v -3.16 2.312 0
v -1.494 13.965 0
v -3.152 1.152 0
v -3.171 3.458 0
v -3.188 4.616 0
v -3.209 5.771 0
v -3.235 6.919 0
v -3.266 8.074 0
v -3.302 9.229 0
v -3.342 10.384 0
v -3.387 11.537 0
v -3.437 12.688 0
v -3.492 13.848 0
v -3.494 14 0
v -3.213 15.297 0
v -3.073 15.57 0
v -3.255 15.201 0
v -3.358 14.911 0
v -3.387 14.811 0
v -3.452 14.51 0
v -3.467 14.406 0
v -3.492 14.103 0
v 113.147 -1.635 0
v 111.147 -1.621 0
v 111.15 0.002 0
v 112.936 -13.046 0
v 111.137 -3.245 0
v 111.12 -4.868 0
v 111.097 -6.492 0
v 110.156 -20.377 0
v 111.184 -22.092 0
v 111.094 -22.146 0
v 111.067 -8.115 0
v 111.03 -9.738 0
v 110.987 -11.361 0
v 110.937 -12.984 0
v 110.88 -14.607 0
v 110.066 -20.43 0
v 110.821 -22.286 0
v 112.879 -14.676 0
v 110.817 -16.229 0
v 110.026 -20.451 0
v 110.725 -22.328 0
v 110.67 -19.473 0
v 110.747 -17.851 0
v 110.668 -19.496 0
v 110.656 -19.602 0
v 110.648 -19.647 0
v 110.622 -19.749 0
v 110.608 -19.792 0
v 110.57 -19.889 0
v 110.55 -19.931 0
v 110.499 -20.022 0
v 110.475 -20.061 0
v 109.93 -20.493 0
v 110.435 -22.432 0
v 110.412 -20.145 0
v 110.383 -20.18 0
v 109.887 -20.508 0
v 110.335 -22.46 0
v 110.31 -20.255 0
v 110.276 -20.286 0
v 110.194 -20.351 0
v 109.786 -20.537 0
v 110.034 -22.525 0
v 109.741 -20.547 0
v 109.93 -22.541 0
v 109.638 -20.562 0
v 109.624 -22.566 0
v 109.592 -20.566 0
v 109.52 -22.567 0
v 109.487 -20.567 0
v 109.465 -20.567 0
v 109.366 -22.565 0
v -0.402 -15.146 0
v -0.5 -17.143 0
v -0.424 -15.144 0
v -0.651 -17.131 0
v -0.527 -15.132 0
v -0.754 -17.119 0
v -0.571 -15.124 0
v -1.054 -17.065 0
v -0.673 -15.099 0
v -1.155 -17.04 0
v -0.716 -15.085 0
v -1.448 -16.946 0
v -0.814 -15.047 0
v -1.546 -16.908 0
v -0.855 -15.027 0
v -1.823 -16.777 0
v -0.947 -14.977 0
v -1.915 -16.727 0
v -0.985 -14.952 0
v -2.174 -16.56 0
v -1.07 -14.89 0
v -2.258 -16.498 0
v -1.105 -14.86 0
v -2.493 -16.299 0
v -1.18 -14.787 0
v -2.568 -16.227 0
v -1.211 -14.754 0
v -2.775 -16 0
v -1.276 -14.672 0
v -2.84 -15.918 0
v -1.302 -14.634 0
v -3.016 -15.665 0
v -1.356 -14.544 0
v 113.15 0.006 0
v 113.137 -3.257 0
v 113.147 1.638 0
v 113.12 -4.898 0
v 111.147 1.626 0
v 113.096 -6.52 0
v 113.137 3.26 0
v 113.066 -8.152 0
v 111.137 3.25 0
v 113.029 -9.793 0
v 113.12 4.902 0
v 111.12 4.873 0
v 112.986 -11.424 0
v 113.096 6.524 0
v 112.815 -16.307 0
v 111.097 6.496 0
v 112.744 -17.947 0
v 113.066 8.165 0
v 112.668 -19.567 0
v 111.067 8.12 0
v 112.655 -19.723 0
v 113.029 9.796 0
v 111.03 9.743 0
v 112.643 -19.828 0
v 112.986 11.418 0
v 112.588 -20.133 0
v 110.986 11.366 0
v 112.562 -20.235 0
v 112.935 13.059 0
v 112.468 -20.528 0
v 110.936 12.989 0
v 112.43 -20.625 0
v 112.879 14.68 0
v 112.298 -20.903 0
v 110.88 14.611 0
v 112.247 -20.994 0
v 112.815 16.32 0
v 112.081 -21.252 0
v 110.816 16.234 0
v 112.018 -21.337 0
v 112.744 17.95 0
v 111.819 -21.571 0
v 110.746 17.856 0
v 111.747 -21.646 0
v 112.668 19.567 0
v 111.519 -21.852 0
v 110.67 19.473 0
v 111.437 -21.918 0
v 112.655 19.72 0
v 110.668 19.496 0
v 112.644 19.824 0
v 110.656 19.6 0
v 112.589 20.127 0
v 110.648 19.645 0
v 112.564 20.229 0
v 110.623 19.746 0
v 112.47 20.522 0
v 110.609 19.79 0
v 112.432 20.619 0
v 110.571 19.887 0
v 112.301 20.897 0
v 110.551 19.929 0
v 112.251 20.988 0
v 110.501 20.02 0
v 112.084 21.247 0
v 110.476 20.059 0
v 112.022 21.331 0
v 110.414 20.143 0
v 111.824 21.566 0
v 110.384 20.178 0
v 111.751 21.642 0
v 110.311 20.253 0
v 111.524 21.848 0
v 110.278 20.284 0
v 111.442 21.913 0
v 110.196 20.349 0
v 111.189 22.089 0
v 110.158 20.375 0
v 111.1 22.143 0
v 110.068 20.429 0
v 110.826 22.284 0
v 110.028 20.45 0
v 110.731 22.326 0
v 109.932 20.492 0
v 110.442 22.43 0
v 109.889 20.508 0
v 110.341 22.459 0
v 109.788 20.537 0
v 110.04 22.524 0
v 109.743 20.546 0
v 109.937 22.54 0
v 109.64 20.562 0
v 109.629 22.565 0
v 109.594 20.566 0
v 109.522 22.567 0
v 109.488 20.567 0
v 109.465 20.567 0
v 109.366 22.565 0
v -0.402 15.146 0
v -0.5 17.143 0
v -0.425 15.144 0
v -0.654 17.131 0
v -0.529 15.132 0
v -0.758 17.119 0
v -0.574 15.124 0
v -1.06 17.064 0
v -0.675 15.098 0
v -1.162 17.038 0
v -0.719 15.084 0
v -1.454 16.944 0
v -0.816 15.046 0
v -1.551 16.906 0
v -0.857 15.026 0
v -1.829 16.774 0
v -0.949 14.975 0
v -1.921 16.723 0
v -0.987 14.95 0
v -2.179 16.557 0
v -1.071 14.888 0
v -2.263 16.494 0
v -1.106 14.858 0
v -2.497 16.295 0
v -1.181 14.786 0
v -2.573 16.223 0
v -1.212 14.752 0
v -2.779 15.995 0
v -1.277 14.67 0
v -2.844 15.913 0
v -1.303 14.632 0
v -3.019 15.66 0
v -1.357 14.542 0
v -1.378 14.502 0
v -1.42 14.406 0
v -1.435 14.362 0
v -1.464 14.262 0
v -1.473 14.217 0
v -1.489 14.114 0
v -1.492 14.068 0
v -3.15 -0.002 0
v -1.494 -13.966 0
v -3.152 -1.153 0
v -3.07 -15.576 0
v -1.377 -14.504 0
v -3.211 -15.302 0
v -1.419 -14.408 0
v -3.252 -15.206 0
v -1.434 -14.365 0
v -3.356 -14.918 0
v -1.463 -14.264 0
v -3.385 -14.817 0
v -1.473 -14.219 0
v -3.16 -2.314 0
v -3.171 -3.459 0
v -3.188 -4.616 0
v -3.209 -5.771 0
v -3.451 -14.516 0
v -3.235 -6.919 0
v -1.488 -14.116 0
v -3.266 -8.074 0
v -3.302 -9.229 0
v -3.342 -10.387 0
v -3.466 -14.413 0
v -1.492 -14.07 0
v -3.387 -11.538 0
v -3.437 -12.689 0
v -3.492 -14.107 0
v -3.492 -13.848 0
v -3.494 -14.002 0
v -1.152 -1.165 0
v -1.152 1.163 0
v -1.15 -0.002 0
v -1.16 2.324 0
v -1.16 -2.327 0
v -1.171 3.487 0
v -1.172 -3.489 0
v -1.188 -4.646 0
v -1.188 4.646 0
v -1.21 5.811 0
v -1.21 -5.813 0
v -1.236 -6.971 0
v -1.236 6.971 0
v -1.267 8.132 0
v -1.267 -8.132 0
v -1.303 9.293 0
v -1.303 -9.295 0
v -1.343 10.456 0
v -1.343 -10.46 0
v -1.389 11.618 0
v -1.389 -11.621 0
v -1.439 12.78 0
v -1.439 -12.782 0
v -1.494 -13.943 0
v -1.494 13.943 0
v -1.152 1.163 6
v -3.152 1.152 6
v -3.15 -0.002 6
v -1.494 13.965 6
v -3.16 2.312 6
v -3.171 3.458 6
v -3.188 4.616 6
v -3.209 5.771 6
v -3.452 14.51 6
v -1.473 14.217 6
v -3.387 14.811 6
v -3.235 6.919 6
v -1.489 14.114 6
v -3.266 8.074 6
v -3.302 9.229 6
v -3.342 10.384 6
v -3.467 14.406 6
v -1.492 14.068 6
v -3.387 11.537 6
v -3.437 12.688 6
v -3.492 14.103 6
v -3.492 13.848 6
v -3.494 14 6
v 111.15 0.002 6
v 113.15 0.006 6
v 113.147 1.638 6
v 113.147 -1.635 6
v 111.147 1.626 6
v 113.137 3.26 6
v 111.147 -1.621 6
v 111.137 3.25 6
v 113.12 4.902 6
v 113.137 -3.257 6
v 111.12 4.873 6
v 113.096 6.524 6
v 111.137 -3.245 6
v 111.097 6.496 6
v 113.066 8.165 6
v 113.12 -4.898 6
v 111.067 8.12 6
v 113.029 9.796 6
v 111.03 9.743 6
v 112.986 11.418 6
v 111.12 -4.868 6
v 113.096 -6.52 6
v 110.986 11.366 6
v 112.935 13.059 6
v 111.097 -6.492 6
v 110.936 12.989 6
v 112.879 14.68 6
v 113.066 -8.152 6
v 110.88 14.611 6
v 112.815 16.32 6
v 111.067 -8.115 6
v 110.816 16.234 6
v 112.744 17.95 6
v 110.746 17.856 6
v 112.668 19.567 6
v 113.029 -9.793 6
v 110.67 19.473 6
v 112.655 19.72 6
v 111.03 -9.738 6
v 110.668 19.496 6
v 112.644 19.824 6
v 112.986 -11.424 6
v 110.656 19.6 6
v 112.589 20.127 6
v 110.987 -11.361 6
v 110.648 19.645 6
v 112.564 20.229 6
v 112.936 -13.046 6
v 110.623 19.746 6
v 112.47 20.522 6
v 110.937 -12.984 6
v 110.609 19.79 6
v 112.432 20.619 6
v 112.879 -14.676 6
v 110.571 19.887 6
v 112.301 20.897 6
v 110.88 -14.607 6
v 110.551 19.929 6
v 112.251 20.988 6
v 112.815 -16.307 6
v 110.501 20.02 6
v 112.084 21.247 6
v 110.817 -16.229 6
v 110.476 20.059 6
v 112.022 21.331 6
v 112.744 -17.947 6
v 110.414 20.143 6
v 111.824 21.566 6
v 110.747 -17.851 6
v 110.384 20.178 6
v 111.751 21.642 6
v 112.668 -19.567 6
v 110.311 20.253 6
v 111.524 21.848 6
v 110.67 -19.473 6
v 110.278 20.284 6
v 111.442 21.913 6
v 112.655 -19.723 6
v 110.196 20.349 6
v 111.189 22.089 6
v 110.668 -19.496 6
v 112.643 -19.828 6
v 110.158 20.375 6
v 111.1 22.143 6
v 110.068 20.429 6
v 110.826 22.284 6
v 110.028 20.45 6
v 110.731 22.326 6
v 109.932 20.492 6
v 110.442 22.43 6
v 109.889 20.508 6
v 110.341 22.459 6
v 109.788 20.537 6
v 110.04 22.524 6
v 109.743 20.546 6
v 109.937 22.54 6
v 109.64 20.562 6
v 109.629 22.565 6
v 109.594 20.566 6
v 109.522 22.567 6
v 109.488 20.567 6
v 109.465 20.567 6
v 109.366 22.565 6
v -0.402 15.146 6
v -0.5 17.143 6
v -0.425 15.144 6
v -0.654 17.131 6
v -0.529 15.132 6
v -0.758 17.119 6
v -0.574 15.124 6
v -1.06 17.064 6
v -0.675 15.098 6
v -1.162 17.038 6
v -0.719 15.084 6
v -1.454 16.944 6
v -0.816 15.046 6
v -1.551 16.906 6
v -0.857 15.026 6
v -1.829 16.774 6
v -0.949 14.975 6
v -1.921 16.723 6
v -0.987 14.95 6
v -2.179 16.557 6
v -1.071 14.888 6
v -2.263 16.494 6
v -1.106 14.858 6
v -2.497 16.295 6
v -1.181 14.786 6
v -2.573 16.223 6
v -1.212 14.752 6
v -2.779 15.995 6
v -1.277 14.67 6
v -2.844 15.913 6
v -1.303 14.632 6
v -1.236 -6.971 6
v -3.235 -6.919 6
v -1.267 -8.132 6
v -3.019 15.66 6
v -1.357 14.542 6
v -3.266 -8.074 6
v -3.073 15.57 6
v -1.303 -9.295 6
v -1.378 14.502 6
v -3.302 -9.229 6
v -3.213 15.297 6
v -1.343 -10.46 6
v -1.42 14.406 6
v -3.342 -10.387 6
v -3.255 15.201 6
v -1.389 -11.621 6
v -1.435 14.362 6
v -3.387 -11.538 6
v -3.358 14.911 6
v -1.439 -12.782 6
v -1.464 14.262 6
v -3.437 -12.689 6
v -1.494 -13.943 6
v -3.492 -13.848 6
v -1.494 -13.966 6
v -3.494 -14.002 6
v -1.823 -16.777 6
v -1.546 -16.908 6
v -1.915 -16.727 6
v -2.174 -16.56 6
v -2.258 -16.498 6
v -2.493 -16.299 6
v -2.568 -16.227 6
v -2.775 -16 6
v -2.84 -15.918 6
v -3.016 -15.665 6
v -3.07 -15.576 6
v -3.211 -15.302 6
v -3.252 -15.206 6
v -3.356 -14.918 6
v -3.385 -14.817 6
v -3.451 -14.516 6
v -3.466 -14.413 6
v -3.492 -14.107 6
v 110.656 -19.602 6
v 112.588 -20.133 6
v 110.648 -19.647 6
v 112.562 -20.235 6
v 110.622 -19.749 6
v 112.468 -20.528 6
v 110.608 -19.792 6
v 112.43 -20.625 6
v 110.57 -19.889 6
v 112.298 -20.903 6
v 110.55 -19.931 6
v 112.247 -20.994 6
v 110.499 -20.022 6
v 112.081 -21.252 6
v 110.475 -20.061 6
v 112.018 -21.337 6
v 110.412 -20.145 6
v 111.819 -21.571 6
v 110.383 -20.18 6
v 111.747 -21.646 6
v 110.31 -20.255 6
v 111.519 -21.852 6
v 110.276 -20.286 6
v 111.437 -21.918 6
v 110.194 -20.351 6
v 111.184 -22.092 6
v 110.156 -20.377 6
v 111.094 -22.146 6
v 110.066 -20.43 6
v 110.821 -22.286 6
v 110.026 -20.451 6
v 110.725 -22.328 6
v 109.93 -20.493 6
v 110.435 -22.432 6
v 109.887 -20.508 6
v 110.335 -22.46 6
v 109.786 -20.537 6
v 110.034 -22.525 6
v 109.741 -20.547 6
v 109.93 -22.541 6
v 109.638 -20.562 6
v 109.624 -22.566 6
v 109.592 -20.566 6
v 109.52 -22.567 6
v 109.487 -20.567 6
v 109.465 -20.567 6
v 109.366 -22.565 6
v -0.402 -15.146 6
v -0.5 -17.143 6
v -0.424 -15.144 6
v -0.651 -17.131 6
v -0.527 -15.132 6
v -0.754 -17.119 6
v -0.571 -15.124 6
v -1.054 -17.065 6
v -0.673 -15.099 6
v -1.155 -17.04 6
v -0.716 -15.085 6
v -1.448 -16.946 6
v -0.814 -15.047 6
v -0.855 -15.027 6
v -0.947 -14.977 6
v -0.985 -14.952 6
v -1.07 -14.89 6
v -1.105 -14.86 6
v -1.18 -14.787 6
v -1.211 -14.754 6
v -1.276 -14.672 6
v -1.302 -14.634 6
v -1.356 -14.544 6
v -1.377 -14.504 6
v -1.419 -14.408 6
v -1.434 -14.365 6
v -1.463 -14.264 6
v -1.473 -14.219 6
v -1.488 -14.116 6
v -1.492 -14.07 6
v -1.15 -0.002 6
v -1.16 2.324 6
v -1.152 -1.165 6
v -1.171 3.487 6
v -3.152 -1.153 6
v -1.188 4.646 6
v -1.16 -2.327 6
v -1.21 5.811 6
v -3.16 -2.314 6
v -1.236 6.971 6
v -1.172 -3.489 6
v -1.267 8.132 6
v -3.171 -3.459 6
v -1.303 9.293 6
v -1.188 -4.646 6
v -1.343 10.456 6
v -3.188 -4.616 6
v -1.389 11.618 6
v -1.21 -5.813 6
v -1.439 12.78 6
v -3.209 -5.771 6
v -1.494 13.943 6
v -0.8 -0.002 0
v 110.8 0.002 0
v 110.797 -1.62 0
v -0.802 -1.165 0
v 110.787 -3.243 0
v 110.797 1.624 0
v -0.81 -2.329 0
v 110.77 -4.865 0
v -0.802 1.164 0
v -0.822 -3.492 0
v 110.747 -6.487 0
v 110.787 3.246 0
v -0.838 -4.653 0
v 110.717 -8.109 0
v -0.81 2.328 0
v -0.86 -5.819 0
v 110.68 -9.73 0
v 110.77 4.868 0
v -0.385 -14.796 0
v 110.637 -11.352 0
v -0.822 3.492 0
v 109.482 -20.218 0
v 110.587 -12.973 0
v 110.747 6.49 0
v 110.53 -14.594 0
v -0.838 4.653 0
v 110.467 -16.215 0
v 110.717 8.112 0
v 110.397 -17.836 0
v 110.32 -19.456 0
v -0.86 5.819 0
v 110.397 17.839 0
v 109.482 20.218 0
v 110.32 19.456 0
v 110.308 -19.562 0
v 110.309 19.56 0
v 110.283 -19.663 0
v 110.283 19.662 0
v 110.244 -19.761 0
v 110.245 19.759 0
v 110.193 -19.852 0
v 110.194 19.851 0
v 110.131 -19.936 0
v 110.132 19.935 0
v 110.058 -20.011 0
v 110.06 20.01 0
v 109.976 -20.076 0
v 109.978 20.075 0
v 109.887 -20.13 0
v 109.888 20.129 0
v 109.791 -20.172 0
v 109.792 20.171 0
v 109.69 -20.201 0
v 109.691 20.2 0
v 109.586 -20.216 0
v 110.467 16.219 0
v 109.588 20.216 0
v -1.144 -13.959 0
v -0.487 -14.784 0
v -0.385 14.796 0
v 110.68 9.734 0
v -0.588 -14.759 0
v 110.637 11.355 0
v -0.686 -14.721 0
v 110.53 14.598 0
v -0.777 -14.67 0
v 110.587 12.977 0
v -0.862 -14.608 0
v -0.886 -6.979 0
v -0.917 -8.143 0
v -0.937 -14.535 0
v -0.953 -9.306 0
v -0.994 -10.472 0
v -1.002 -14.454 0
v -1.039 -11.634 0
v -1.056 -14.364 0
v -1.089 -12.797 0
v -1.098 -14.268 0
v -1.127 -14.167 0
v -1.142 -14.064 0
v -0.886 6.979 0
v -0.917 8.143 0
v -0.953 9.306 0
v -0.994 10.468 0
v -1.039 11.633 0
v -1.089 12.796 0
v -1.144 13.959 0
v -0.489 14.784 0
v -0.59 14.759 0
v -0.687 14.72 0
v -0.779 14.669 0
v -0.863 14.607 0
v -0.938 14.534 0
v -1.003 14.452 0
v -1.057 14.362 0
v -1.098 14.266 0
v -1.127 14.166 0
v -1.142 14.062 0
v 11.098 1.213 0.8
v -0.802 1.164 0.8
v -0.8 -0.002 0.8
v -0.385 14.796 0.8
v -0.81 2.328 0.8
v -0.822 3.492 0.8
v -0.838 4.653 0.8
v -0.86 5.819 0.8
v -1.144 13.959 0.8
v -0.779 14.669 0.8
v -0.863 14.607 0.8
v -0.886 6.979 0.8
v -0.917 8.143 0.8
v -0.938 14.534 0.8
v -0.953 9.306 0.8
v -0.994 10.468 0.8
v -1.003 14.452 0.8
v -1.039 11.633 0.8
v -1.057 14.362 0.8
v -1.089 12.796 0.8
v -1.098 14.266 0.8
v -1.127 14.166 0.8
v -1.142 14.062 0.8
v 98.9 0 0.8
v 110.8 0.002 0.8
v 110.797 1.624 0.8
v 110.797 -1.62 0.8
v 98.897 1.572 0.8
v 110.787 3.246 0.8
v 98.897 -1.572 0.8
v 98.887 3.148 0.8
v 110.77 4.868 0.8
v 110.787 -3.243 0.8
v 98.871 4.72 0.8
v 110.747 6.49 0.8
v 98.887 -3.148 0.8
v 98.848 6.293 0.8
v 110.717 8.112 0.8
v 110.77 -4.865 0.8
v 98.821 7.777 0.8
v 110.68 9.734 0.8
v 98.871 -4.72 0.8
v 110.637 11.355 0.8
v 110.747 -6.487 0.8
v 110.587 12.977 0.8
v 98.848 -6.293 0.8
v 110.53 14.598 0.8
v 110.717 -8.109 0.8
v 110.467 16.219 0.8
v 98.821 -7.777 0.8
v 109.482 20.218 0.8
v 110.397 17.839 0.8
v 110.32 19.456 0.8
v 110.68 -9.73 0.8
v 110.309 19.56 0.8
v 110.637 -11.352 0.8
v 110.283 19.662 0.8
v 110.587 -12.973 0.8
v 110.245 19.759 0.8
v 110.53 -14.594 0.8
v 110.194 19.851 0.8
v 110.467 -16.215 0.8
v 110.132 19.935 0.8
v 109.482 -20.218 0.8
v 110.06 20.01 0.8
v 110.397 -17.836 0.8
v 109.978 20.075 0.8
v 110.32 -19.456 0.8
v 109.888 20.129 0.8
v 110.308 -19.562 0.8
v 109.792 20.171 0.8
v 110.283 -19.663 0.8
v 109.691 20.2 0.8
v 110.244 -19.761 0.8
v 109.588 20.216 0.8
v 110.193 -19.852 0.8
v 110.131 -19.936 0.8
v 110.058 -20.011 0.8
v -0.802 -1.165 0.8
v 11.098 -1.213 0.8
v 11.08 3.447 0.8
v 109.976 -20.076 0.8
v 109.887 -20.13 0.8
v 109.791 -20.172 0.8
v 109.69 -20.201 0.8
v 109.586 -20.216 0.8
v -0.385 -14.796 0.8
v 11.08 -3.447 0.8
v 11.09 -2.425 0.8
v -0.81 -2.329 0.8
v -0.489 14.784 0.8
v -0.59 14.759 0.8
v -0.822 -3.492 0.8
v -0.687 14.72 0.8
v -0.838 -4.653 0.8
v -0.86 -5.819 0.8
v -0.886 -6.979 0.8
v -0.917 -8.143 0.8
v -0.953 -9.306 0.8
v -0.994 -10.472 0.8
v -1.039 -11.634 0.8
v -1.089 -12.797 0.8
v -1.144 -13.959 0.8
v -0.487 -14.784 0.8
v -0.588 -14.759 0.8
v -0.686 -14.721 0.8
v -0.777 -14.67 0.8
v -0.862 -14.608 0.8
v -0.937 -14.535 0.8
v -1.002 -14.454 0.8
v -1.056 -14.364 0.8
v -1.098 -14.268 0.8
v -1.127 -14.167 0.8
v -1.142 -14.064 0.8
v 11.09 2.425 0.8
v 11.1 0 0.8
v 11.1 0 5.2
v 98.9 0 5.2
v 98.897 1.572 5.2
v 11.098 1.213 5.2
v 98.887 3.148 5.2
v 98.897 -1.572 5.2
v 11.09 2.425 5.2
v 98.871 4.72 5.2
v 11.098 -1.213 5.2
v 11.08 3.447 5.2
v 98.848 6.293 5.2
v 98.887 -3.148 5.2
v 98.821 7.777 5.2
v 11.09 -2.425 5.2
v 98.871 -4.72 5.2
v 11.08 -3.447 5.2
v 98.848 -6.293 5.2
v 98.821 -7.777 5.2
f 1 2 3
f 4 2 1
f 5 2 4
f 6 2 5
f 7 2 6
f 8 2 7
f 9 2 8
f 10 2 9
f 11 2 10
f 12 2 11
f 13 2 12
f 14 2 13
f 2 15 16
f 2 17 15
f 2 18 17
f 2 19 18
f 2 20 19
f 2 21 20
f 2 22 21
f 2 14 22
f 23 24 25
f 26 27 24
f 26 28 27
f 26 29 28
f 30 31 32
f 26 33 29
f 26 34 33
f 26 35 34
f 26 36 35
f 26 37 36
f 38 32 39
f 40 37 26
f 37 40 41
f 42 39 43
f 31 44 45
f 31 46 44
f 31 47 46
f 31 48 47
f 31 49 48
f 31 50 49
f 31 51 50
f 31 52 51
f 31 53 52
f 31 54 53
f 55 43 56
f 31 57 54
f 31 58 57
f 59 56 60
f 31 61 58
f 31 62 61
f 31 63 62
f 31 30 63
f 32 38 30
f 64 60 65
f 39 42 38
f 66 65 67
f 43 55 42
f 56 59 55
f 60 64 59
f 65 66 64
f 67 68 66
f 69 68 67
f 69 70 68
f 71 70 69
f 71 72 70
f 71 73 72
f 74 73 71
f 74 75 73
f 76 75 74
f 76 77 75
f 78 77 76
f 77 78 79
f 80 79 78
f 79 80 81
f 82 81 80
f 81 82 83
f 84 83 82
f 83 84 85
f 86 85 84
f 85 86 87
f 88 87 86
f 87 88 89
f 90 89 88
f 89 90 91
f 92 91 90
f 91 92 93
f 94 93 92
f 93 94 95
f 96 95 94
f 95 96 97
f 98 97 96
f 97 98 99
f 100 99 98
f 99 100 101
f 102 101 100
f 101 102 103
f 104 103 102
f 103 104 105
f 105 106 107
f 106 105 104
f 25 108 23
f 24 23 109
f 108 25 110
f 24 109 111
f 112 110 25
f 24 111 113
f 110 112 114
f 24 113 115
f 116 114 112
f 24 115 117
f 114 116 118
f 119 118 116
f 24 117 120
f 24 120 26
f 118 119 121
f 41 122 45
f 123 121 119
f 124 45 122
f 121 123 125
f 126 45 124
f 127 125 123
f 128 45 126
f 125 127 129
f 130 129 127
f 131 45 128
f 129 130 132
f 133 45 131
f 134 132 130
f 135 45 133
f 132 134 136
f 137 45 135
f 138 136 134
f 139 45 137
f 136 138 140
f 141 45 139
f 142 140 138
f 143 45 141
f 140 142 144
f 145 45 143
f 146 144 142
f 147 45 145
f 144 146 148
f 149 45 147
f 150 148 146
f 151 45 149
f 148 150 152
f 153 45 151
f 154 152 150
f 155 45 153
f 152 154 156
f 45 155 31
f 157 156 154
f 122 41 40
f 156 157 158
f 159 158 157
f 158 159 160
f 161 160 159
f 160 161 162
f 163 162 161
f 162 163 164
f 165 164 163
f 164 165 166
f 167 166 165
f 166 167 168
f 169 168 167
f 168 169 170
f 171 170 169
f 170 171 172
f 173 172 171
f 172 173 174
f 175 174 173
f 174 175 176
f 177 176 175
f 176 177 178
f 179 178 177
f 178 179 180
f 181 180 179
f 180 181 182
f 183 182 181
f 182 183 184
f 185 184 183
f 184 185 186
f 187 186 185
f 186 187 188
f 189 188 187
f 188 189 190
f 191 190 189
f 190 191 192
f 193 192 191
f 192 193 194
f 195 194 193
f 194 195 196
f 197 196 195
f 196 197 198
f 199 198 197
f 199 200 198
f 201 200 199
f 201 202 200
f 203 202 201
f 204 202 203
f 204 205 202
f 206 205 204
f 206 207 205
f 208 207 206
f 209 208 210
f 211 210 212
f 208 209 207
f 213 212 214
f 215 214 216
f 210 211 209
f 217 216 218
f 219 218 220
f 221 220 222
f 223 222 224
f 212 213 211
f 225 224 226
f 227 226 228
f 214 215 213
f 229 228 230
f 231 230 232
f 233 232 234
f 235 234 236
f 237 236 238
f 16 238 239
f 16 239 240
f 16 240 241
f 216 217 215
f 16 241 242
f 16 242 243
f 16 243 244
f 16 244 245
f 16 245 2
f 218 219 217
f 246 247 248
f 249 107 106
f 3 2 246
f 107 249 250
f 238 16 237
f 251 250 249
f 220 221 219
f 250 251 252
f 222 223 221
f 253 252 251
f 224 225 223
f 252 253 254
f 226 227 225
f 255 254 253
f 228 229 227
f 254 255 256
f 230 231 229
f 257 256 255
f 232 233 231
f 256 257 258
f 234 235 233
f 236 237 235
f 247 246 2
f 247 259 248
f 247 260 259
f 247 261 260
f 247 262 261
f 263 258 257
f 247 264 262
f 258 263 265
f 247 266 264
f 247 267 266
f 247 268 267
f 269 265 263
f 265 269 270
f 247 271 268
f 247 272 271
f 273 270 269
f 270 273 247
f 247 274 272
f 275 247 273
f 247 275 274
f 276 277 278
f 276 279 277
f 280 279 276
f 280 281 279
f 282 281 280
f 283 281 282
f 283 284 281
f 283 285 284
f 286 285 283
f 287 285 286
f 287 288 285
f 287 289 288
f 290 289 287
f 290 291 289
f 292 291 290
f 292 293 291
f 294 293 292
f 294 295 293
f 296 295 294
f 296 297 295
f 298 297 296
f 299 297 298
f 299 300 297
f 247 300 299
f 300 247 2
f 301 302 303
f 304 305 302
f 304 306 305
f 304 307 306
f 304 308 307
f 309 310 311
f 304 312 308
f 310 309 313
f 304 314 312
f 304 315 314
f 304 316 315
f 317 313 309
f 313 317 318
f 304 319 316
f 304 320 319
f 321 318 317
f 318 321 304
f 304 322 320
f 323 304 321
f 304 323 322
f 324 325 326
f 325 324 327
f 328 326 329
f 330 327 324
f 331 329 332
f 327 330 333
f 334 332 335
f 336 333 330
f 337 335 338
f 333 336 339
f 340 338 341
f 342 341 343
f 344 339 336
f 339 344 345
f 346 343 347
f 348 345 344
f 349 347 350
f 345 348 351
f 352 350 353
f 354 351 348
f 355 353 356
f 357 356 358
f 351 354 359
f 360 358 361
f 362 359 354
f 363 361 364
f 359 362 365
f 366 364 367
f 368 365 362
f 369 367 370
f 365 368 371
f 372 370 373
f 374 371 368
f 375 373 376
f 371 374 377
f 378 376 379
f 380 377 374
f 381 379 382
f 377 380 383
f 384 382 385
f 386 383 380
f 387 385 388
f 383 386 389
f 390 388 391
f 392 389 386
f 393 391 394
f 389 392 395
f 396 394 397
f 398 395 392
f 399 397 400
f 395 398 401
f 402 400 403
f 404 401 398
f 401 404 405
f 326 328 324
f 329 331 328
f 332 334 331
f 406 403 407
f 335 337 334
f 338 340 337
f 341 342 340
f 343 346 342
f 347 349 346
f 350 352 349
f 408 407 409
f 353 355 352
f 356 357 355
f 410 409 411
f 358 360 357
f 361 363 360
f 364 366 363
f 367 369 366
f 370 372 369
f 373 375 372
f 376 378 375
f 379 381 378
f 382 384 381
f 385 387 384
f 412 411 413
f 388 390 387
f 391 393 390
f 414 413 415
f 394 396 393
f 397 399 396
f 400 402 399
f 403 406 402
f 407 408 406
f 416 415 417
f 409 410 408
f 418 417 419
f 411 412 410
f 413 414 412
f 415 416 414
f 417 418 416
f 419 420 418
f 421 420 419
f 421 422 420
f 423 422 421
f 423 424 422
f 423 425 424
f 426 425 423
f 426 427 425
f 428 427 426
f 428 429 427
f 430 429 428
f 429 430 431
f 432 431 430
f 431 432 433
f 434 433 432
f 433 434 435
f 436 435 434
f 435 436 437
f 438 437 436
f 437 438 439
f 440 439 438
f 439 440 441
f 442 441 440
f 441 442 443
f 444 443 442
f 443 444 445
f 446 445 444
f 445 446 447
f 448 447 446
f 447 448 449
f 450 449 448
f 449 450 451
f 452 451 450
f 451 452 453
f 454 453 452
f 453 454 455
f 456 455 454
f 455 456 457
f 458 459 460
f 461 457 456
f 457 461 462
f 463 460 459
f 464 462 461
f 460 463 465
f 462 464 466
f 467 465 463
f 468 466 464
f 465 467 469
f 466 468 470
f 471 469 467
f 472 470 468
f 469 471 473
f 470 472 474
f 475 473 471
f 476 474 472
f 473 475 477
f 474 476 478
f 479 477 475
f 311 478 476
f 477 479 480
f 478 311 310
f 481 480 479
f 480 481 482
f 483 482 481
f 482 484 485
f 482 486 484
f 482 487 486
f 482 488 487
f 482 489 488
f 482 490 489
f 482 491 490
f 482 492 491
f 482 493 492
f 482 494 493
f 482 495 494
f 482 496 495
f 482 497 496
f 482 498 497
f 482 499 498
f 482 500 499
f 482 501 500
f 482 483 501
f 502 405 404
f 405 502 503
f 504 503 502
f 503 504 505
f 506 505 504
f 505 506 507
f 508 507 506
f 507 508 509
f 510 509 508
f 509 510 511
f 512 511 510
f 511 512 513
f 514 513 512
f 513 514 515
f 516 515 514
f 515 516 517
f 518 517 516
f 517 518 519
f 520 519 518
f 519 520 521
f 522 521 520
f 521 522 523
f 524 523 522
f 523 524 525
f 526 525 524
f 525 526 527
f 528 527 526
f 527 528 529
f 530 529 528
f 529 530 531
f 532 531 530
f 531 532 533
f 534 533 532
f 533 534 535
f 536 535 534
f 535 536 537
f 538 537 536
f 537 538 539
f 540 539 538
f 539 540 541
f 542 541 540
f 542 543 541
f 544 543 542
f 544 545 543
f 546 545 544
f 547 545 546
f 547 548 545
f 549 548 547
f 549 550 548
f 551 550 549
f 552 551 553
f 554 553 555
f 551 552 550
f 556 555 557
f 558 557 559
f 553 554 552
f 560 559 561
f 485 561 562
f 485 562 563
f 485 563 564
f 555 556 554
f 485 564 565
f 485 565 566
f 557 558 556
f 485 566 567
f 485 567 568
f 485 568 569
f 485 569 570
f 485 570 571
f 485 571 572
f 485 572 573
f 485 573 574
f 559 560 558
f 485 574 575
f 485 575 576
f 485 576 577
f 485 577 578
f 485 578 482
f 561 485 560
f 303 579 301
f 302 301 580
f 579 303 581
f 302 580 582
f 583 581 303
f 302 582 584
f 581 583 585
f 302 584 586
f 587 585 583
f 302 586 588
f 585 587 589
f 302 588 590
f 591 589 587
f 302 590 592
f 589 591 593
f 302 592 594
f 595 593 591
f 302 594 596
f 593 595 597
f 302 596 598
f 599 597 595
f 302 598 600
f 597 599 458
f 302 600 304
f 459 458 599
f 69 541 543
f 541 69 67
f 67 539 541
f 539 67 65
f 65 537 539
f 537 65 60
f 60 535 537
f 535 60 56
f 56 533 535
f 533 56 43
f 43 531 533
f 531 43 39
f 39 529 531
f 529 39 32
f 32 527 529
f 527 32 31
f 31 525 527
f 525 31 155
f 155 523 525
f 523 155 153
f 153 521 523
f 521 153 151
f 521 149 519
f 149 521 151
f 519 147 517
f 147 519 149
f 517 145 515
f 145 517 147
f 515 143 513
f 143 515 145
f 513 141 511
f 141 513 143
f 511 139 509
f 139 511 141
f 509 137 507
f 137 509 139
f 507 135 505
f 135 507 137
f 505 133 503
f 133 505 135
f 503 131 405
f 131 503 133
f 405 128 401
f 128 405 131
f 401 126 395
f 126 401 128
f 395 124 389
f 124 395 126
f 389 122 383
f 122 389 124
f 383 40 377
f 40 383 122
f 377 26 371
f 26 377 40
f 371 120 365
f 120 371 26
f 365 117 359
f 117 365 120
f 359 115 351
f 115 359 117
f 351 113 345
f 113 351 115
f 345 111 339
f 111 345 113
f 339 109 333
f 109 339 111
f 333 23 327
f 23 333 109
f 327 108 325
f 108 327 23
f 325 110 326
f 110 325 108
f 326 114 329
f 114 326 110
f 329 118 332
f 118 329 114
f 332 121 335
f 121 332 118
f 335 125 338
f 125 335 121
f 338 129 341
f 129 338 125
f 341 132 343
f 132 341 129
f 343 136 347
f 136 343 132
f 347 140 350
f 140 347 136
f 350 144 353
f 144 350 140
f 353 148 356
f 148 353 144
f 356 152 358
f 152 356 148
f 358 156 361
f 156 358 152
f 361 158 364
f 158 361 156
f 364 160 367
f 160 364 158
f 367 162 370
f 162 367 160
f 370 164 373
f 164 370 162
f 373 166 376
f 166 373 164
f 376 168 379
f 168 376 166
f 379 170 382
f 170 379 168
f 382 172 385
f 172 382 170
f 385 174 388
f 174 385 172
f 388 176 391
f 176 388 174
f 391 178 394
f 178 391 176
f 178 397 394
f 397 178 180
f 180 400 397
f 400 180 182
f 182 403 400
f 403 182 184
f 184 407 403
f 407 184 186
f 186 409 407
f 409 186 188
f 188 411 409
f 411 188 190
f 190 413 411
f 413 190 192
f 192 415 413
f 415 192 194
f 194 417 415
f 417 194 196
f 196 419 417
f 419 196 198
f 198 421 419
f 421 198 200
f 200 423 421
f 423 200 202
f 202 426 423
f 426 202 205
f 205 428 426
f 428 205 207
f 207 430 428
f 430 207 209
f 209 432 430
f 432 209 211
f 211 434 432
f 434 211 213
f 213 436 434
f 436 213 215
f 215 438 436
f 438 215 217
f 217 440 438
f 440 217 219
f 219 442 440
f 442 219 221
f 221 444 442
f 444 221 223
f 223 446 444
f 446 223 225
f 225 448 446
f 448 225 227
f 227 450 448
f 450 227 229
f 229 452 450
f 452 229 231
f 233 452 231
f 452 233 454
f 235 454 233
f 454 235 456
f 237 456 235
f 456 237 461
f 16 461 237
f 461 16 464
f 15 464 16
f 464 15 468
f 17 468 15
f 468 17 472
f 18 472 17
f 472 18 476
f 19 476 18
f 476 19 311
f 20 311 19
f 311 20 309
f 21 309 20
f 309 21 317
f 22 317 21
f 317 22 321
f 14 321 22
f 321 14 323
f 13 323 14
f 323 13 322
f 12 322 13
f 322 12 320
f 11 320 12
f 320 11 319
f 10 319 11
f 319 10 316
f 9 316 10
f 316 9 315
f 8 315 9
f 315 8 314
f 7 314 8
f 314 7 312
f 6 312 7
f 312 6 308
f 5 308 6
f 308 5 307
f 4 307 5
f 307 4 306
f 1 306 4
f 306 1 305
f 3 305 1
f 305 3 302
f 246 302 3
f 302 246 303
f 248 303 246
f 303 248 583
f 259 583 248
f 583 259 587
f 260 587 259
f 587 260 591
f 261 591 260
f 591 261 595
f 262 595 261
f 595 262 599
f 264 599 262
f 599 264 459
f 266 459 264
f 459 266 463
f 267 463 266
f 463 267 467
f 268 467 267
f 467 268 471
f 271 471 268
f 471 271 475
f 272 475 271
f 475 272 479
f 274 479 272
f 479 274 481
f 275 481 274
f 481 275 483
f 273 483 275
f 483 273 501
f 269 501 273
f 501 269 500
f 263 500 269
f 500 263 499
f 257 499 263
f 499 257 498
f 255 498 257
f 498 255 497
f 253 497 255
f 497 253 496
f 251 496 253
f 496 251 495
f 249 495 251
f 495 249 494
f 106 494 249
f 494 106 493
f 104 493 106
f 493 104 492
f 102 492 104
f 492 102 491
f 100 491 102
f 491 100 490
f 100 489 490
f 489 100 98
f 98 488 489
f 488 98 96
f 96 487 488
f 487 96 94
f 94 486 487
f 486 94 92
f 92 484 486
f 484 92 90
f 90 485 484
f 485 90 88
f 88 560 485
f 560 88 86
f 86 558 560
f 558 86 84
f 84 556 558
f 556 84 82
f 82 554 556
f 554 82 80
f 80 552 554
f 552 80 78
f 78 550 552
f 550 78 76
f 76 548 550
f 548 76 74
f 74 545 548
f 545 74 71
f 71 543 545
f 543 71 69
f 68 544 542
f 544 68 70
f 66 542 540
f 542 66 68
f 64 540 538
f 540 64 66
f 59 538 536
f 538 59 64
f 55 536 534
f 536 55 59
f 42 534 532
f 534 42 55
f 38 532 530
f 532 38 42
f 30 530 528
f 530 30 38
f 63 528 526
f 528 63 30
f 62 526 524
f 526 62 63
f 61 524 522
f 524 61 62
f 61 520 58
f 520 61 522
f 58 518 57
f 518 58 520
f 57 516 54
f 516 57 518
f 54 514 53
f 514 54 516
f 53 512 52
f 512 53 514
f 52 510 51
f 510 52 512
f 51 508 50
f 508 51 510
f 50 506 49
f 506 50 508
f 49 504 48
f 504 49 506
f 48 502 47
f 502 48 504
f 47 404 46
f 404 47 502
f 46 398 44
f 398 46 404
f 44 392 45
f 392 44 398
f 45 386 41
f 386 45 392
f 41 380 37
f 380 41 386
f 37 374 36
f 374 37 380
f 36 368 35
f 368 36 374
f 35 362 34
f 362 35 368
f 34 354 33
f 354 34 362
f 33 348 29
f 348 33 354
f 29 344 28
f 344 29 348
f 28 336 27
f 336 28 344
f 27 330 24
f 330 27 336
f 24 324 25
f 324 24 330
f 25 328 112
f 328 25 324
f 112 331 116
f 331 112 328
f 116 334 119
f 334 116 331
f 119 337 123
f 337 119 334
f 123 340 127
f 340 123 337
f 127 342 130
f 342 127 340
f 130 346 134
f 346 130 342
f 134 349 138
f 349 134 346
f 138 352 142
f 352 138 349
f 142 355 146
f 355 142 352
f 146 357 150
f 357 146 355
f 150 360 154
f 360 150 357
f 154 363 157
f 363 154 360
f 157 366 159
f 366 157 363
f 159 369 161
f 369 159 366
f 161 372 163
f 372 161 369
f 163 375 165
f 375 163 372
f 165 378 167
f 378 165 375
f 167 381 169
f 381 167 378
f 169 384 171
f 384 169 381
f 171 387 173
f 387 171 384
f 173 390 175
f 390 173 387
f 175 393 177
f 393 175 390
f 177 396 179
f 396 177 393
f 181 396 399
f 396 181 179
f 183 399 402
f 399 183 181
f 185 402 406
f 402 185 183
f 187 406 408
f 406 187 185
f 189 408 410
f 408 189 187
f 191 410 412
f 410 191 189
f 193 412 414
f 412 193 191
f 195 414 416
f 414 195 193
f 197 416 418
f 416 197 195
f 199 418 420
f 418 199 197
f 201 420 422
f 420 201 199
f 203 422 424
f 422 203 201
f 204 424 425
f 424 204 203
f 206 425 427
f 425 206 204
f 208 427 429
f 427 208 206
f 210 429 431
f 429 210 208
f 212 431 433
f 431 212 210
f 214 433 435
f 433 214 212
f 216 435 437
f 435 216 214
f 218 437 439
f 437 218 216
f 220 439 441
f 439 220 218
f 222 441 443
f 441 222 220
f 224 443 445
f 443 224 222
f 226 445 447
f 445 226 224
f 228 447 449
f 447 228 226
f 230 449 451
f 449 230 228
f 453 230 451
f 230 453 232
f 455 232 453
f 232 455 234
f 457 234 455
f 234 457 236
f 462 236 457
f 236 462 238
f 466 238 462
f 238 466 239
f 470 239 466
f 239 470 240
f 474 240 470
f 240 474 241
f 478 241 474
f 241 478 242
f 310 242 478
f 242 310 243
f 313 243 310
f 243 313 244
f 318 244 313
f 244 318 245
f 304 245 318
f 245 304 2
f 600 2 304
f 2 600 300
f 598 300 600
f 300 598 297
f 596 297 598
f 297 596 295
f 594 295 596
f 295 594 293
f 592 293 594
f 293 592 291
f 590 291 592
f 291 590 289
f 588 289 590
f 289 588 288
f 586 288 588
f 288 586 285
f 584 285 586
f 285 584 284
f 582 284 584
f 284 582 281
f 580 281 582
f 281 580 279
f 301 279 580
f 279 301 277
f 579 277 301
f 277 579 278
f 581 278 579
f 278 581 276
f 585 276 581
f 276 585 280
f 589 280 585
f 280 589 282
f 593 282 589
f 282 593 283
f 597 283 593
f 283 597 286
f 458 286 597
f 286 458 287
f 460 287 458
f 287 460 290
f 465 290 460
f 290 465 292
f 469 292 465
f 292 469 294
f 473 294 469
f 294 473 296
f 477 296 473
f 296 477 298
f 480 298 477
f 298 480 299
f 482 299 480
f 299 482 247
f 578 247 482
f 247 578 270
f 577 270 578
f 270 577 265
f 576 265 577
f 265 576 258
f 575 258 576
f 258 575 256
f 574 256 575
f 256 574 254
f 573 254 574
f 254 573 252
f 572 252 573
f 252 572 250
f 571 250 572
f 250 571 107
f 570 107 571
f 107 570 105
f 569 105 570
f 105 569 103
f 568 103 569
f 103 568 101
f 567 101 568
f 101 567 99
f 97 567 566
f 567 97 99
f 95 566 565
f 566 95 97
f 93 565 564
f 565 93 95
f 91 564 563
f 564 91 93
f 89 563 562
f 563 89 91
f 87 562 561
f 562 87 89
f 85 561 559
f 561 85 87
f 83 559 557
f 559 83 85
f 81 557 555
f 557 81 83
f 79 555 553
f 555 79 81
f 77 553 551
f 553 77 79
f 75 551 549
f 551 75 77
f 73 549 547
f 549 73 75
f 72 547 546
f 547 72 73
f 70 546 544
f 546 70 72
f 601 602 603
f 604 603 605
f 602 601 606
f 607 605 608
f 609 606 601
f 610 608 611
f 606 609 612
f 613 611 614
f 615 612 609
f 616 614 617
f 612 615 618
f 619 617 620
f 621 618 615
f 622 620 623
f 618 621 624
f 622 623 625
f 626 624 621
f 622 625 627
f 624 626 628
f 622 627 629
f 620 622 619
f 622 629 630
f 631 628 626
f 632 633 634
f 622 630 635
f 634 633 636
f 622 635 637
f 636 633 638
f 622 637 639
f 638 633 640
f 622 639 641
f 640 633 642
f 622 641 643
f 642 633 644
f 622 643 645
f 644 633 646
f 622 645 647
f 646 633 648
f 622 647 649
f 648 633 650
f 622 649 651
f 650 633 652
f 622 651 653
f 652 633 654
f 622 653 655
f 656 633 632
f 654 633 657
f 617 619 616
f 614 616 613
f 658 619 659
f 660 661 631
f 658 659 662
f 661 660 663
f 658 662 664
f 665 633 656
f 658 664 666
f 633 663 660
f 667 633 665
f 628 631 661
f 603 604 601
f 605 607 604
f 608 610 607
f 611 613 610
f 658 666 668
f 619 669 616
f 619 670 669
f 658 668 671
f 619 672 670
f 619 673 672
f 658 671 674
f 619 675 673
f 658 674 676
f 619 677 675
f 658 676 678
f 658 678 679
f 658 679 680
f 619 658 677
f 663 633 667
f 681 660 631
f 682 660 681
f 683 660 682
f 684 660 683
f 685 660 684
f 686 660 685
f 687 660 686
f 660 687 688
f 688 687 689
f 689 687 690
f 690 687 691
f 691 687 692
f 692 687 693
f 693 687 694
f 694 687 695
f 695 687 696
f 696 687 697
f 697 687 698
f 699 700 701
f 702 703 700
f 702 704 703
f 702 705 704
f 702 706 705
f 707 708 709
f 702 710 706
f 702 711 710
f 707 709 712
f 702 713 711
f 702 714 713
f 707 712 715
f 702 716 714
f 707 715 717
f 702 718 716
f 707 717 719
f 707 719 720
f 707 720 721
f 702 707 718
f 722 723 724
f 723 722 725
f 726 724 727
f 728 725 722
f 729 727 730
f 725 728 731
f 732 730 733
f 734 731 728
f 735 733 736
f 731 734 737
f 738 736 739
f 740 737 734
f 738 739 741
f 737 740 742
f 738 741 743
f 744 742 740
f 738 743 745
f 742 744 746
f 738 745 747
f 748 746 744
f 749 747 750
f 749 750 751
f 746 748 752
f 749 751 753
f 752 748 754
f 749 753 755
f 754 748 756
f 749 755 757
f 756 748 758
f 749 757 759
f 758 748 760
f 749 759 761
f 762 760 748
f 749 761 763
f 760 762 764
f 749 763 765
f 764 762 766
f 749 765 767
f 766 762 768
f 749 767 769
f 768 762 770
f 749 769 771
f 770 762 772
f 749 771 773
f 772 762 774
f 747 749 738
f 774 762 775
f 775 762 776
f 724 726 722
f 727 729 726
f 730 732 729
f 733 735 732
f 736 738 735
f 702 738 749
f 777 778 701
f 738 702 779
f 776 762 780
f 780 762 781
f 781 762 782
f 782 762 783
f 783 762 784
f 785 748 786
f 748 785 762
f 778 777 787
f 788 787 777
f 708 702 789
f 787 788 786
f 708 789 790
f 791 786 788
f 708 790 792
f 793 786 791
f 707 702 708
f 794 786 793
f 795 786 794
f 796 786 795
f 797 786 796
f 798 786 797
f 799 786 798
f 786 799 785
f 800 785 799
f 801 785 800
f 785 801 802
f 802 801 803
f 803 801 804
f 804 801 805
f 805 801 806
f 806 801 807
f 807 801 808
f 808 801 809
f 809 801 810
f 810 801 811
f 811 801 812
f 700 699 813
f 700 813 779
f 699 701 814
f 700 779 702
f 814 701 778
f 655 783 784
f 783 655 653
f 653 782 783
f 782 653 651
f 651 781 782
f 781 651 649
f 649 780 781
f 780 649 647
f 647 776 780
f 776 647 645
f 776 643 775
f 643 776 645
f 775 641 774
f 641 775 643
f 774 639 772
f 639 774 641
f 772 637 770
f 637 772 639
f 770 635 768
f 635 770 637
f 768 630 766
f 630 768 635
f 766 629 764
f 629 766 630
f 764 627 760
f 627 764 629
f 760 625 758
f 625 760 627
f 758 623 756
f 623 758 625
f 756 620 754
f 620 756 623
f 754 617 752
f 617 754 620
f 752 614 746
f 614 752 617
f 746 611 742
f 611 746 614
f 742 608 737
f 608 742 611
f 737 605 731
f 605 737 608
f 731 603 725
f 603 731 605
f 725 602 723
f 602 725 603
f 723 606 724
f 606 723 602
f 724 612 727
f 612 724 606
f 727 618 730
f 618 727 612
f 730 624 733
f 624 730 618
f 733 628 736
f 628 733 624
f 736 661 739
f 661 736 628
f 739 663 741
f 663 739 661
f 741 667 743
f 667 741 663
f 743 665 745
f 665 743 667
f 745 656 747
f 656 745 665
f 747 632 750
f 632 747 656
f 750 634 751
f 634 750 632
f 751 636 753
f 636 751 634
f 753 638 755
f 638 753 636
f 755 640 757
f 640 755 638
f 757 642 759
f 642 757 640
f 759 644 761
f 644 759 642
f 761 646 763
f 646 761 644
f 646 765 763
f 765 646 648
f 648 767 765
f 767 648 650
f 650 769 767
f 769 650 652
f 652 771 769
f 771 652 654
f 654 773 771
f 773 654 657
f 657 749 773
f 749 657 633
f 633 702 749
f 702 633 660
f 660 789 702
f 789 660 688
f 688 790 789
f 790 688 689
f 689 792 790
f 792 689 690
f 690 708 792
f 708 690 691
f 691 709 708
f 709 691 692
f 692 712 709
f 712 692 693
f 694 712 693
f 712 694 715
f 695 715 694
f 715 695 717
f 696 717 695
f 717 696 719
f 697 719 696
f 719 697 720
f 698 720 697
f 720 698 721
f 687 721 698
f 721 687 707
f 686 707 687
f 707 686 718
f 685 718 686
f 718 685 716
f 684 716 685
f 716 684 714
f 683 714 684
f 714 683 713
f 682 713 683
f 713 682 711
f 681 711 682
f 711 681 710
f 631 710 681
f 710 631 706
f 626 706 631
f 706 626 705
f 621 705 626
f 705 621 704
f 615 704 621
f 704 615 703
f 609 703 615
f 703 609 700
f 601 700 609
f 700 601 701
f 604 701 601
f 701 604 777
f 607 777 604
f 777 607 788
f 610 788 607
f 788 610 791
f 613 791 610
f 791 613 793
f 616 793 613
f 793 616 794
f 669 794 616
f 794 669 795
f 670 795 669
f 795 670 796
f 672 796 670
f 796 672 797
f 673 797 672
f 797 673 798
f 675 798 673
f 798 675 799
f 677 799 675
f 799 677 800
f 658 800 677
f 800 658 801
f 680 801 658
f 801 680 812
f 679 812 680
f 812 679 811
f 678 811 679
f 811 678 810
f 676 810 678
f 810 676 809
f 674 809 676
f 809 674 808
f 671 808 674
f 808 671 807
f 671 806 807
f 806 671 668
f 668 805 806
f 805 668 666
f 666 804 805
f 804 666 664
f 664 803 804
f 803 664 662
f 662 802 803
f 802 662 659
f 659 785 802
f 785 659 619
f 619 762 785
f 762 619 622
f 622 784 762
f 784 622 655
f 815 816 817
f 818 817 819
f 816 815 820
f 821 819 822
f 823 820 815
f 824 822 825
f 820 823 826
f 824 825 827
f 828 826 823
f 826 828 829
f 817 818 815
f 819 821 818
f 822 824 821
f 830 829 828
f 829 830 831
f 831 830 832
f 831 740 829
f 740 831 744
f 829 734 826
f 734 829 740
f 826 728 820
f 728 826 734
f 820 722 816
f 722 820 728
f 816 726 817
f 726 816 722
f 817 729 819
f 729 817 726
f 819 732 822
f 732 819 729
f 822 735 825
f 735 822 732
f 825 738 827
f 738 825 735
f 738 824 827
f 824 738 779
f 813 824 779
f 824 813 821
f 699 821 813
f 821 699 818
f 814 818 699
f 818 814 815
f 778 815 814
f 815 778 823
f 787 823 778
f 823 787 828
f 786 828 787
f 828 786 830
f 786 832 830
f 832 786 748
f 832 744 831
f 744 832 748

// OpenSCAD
// Gen-EB — fit coupon (bay part): O20/O5 THROUGH pockets at carrier thickness (test on a steel offcut), 608 seat,
// D-flat bore, gap shim, and one bobbin-bay slice (bobbin footprint + bay_clear) to test former fit.
include <parameters.scad>;
$fn = 48;
// D-flat keyed bore: flat faces +X (angle 0 = magnet pocket 0 = index notch)
module dflat_bore(h) {
    intersection() {
        cylinder(d=shaft_bore, h=h);
        translate([-shaft_bore, -shaft_bore, 0]) cube([shaft_bore + dflat_x, 2*shaft_bore, h]);
    }
}
module sector_2d(r_in, r_out, ang) {
    polygon([
        for (a = [-ang/2 : ang/24 : ang/2]) [r_in*cos(a), r_in*sin(a)],
        for (a = [ang/2 : -ang/24 : -ang/2]) [r_out*cos(a), r_out*sin(a)]
    ]);
}
module footprint_2d() { offset(r=wall) sector_2d(coil_id_r, coil_od_r, span_deg); }
module hub_2d()       { offset(delta=-coil_core_inset) sector_2d(coil_id_r, coil_od_r, span_deg); }

// bay slice at FULL stator thickness with one bobbin BASE printed IN PLACE inside it (bay_clear gap): this is the
// print-in-place test for the one-plate stator. After printing, the base must pop out with finger pressure; if it is fused,
// print coil_former.stl separately (print-packs/parts/) instead of using the in-place bases.
translate([-coil_id_r, 0, 0]) {
    difference() {
        linear_extrude(stator_thick) offset(r=bay_clear + 2) footprint_2d();
        translate([0, 0, -0.1]) linear_extrude(stator_thick + 0.2) offset(r=bay_clear) footprint_2d();
    }
    union() {
        linear_extrude(flange_t) footprint_2d();
        translate([0, 0, flange_t - 0.01]) linear_extrude(former_web + 0.01) hub_2d();
    }
}
